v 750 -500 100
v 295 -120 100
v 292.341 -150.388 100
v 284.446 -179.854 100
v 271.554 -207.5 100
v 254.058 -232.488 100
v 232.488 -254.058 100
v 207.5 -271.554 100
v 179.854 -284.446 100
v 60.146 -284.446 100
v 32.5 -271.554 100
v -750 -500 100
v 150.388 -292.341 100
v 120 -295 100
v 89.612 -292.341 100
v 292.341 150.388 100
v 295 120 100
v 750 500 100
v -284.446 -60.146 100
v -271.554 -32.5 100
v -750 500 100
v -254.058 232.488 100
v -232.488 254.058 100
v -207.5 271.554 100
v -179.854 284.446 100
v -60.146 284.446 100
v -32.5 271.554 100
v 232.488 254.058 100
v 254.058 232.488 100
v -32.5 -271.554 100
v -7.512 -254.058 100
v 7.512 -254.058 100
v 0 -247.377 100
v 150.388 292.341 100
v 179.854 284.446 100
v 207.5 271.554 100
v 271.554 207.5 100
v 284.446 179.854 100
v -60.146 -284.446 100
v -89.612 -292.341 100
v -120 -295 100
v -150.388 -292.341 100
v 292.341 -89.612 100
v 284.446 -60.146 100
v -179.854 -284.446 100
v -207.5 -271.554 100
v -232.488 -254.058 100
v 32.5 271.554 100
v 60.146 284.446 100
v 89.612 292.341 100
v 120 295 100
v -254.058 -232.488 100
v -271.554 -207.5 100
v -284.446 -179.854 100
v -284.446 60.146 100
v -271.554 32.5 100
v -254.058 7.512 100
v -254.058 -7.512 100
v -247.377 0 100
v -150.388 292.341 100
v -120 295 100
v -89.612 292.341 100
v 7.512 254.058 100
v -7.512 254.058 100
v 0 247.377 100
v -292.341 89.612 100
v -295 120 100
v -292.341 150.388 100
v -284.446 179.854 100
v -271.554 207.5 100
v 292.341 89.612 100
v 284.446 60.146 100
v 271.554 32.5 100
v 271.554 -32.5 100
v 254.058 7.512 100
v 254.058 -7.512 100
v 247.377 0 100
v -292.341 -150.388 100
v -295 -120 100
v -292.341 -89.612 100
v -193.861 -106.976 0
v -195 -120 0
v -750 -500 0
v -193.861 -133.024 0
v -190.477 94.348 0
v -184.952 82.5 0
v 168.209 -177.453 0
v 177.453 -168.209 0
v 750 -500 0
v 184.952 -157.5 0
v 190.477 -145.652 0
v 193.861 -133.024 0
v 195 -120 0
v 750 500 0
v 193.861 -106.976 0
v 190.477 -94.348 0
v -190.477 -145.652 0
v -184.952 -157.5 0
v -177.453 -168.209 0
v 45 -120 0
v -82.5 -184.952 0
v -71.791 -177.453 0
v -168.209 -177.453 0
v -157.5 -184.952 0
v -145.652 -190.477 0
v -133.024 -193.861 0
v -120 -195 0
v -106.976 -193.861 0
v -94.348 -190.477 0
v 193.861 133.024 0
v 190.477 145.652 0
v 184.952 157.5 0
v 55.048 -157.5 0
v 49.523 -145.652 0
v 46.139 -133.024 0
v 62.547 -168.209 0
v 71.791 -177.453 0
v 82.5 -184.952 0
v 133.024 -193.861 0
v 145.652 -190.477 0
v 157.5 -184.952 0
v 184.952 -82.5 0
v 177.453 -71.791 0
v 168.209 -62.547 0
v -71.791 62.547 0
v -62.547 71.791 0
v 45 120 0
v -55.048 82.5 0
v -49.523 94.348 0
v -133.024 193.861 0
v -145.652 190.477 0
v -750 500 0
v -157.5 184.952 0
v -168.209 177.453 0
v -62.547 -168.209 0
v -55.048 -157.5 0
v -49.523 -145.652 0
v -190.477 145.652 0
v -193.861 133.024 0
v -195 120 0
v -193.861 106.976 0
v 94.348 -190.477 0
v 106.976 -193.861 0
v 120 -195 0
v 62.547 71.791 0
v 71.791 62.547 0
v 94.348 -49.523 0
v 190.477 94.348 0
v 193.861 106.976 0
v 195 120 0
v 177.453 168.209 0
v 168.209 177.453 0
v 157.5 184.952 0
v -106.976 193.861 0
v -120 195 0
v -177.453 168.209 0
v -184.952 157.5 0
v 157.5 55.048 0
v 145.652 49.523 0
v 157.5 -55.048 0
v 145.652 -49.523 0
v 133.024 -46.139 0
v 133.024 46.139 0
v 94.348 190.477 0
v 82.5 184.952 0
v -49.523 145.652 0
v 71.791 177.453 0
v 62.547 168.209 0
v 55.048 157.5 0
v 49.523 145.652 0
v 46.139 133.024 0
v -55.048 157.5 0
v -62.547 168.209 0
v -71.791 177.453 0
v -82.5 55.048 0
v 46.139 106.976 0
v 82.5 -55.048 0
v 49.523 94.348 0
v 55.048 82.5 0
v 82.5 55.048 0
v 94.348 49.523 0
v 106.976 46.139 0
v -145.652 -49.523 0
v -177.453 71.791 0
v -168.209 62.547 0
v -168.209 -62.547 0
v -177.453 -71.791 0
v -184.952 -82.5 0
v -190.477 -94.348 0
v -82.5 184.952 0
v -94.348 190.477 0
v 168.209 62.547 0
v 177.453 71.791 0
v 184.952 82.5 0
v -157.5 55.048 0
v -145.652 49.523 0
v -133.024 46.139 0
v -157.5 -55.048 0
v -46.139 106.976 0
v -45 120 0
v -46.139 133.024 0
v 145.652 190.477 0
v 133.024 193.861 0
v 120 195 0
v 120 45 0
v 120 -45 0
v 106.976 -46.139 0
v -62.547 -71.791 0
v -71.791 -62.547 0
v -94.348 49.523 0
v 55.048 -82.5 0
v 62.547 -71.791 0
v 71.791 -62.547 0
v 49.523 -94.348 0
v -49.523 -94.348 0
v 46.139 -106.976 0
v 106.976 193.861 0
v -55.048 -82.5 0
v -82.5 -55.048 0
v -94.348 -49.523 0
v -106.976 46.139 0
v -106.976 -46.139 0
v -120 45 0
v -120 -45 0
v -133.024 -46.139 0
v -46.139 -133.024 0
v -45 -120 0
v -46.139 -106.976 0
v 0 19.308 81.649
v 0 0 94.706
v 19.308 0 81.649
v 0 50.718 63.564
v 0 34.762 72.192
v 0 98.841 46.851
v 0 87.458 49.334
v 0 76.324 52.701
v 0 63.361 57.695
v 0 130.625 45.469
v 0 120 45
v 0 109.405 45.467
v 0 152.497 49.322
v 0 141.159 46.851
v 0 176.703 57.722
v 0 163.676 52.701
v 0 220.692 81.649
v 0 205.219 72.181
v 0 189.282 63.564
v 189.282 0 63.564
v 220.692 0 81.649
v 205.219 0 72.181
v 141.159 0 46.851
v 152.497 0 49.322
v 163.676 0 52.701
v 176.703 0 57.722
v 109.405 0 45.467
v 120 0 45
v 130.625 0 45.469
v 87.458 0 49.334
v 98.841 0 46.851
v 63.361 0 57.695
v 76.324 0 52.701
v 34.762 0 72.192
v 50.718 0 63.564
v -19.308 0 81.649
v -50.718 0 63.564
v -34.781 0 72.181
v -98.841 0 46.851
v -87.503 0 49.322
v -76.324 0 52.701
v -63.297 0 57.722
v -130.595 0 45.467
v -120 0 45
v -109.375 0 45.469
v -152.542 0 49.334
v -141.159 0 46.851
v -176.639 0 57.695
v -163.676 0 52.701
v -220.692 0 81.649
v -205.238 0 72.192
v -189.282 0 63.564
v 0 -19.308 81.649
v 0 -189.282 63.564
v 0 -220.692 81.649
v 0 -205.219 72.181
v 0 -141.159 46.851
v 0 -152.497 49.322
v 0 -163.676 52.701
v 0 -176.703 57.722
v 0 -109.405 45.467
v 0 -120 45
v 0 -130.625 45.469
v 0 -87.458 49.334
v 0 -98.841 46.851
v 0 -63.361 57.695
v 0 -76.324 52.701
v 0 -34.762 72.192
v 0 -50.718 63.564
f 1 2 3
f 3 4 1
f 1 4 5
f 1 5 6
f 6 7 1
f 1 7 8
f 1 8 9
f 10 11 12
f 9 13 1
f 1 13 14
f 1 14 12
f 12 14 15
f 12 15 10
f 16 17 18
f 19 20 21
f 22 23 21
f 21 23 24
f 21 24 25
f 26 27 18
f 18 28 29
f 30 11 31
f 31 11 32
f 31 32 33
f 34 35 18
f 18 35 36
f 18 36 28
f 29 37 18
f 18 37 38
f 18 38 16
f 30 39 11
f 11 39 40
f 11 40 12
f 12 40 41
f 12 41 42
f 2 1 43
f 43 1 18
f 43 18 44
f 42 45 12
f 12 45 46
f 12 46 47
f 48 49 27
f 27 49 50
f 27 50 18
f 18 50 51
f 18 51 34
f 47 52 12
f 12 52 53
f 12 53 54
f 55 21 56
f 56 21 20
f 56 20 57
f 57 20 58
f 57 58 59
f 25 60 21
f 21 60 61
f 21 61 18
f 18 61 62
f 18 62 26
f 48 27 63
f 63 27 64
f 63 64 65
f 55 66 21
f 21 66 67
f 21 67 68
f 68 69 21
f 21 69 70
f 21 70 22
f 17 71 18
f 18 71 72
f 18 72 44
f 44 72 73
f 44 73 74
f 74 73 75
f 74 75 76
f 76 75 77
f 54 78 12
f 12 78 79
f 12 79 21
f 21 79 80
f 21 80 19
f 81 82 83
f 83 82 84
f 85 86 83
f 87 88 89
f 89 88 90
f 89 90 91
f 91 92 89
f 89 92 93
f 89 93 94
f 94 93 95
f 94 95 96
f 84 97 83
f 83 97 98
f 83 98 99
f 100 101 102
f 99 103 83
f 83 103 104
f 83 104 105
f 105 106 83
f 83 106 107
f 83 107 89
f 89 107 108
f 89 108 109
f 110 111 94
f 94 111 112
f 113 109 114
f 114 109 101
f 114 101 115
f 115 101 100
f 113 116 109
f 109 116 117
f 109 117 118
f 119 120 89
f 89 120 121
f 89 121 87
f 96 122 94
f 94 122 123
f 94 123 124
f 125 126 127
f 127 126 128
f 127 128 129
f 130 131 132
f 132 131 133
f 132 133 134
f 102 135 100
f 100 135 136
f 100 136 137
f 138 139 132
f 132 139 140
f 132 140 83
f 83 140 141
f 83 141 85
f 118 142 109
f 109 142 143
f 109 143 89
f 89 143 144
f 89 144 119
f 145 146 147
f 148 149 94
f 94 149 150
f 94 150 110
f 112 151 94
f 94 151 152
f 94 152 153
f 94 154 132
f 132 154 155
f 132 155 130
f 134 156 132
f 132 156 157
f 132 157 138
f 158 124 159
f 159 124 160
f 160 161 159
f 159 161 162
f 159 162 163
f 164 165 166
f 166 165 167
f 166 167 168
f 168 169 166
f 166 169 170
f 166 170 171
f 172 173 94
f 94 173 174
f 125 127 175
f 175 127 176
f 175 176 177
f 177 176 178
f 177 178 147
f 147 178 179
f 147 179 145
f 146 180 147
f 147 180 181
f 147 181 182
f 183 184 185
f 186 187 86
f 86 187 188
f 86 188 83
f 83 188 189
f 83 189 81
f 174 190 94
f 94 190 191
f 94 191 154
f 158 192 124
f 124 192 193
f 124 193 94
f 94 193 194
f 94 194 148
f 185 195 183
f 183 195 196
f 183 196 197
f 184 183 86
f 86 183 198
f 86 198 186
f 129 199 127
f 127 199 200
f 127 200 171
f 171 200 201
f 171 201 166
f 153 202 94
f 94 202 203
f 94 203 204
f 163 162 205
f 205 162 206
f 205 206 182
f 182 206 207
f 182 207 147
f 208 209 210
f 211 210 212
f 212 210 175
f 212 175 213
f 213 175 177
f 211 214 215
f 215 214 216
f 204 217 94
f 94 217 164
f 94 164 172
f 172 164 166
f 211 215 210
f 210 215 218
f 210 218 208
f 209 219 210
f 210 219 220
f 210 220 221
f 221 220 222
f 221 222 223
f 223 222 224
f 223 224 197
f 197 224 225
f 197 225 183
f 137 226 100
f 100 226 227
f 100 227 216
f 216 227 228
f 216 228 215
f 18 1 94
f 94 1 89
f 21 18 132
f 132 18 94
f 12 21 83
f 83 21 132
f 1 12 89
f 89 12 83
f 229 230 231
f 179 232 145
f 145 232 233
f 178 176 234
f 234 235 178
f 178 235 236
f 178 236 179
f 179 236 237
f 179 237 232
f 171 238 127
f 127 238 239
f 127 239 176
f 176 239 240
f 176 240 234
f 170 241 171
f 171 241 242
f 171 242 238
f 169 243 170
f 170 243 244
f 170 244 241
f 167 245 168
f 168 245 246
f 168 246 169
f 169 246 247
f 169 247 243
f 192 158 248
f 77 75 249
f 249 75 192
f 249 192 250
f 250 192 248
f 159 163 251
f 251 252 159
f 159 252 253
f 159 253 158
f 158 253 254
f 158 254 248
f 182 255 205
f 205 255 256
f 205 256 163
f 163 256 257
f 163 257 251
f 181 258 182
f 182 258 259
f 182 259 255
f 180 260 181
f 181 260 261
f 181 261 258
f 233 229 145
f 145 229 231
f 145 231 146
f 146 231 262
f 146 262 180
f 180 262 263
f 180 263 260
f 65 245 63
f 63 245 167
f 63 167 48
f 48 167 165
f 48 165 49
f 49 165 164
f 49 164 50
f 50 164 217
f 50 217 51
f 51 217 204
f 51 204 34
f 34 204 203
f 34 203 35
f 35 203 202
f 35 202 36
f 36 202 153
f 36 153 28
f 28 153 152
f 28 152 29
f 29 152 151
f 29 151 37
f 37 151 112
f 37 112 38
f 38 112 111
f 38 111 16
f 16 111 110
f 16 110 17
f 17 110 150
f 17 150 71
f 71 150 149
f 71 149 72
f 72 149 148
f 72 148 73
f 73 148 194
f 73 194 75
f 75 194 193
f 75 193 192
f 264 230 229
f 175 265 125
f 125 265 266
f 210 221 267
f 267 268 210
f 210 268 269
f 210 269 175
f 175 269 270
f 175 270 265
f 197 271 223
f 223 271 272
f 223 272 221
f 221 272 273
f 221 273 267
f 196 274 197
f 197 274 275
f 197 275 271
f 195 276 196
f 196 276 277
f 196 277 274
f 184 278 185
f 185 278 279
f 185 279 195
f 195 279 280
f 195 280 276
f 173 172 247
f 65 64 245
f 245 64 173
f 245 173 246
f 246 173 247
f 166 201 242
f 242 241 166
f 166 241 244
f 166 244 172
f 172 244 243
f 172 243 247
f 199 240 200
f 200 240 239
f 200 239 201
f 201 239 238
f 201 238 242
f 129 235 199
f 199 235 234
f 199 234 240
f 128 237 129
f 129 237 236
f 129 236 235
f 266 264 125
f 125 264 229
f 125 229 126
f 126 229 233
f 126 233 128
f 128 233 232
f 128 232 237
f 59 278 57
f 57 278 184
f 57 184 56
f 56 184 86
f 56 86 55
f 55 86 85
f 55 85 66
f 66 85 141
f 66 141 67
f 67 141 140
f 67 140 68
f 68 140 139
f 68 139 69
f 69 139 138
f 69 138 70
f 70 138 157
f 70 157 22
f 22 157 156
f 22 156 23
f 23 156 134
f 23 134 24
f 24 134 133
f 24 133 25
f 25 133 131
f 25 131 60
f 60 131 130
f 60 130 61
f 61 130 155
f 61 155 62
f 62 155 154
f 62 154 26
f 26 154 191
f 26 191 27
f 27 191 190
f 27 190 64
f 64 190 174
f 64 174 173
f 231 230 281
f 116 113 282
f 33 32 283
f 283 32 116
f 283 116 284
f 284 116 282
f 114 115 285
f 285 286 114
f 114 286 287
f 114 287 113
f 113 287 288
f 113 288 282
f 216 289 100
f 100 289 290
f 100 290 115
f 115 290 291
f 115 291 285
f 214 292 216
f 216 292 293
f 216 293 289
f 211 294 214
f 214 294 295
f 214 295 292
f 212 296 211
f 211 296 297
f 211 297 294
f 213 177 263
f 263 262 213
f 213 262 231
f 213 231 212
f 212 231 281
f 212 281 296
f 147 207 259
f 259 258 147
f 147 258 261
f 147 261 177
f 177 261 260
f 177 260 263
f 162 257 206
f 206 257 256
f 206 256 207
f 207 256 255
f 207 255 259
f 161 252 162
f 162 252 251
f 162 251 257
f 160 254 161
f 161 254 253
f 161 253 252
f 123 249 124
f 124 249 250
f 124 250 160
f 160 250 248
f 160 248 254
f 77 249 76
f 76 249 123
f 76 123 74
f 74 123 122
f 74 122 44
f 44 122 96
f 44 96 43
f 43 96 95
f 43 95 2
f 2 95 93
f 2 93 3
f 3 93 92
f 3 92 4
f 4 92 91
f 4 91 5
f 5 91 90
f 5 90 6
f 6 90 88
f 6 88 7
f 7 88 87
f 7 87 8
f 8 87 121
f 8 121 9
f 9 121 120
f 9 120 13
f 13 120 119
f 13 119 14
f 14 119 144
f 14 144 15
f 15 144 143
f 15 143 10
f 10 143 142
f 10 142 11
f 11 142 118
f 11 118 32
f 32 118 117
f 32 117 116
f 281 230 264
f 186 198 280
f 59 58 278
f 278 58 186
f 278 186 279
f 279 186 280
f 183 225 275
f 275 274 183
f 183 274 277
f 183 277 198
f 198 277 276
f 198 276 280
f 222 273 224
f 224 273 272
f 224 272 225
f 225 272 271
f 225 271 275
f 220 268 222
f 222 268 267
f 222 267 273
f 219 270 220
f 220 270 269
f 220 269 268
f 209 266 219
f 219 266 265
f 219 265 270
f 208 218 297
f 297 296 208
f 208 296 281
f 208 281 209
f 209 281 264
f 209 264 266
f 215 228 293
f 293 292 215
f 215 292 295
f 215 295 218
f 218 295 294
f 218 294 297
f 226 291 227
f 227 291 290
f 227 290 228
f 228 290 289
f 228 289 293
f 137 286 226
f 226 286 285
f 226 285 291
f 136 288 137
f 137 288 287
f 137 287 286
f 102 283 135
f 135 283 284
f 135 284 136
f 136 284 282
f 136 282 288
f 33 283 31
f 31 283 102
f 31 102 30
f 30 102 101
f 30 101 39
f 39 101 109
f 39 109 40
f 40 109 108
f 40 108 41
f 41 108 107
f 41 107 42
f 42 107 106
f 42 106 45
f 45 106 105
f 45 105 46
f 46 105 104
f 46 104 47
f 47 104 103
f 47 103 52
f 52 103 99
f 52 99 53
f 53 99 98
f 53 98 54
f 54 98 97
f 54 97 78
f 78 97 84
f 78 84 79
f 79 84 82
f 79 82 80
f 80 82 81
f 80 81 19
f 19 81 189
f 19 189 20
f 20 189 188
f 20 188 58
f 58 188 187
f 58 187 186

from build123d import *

# Parameters (mm, degrees)
SKETCH1_W           = 1500
SKETCH1_H           = 1000
SKETCH1_R           = 75
BOSS_EXTRUDE1_DEPTH = 100
CHAMFER1_SIZE       = 100


with BuildPart() as part:
    # Sketch1 → Boss-Extrude1 (new body)
    with BuildSketch(Plane.XY):
        Rectangle(SKETCH1_W, SKETCH1_H)
        with Locations((-120, 120)):
            Circle(SKETCH1_R, mode=Mode.SUBTRACT)
        with Locations((120, 120)):
            Circle(SKETCH1_R, mode=Mode.SUBTRACT)
        with Locations((120, -120)):
            Circle(SKETCH1_R, mode=Mode.SUBTRACT)
        with Locations((-120, -120)):
            Circle(SKETCH1_R, mode=Mode.SUBTRACT)
    extrude(amount=BOSS_EXTRUDE1_DEPTH)

    # Chamfer1
    # the kernel refuses this chamfer: 100 mm, written as the material it takes off along each edge
    with BuildSketch(Plane(origin=(-120, 120, 100), x_dir=(1, 0, 0), z_dir=(0, -1, 0))) as chamfer1_piece_1:
        Polygon((75, -CHAMFER1_SIZE), (75 + CHAMFER1_SIZE, 0), (75, 0), align=None)
    revolve(axis=Axis((-120, 120, 100), (0, 0, 1)), mode=Mode.SUBTRACT)
    with BuildSketch(Plane(origin=(120, 120, 100), x_dir=(1, 0, 0), z_dir=(0, -1, 0))) as chamfer1_piece_2:
        Polygon((75, -CHAMFER1_SIZE), (75 + CHAMFER1_SIZE, 0), (75, 0), align=None)
    revolve(axis=Axis((120, 120, 100), (0, 0, 1)), mode=Mode.SUBTRACT)
    with BuildSketch(Plane(origin=(120, -120, 100), x_dir=(1, 0, 0), z_dir=(0, -1, 0))) as chamfer1_piece_3:
        Polygon((75, -CHAMFER1_SIZE), (75 + CHAMFER1_SIZE, 0), (75, 0), align=None)
    revolve(axis=Axis((120, -120, 100), (0, 0, 1)), mode=Mode.SUBTRACT)
    with BuildSketch(Plane(origin=(-120, -120, 100), x_dir=(1, 0, 0), z_dir=(0, -1, 0))) as chamfer1_piece_4:
        Polygon((75, -CHAMFER1_SIZE), (75 + CHAMFER1_SIZE, 0), (75, 0), align=None)
    revolve(axis=Axis((-120, -120, 100), (0, 0, 1)), mode=Mode.SUBTRACT)


solid = part.part
